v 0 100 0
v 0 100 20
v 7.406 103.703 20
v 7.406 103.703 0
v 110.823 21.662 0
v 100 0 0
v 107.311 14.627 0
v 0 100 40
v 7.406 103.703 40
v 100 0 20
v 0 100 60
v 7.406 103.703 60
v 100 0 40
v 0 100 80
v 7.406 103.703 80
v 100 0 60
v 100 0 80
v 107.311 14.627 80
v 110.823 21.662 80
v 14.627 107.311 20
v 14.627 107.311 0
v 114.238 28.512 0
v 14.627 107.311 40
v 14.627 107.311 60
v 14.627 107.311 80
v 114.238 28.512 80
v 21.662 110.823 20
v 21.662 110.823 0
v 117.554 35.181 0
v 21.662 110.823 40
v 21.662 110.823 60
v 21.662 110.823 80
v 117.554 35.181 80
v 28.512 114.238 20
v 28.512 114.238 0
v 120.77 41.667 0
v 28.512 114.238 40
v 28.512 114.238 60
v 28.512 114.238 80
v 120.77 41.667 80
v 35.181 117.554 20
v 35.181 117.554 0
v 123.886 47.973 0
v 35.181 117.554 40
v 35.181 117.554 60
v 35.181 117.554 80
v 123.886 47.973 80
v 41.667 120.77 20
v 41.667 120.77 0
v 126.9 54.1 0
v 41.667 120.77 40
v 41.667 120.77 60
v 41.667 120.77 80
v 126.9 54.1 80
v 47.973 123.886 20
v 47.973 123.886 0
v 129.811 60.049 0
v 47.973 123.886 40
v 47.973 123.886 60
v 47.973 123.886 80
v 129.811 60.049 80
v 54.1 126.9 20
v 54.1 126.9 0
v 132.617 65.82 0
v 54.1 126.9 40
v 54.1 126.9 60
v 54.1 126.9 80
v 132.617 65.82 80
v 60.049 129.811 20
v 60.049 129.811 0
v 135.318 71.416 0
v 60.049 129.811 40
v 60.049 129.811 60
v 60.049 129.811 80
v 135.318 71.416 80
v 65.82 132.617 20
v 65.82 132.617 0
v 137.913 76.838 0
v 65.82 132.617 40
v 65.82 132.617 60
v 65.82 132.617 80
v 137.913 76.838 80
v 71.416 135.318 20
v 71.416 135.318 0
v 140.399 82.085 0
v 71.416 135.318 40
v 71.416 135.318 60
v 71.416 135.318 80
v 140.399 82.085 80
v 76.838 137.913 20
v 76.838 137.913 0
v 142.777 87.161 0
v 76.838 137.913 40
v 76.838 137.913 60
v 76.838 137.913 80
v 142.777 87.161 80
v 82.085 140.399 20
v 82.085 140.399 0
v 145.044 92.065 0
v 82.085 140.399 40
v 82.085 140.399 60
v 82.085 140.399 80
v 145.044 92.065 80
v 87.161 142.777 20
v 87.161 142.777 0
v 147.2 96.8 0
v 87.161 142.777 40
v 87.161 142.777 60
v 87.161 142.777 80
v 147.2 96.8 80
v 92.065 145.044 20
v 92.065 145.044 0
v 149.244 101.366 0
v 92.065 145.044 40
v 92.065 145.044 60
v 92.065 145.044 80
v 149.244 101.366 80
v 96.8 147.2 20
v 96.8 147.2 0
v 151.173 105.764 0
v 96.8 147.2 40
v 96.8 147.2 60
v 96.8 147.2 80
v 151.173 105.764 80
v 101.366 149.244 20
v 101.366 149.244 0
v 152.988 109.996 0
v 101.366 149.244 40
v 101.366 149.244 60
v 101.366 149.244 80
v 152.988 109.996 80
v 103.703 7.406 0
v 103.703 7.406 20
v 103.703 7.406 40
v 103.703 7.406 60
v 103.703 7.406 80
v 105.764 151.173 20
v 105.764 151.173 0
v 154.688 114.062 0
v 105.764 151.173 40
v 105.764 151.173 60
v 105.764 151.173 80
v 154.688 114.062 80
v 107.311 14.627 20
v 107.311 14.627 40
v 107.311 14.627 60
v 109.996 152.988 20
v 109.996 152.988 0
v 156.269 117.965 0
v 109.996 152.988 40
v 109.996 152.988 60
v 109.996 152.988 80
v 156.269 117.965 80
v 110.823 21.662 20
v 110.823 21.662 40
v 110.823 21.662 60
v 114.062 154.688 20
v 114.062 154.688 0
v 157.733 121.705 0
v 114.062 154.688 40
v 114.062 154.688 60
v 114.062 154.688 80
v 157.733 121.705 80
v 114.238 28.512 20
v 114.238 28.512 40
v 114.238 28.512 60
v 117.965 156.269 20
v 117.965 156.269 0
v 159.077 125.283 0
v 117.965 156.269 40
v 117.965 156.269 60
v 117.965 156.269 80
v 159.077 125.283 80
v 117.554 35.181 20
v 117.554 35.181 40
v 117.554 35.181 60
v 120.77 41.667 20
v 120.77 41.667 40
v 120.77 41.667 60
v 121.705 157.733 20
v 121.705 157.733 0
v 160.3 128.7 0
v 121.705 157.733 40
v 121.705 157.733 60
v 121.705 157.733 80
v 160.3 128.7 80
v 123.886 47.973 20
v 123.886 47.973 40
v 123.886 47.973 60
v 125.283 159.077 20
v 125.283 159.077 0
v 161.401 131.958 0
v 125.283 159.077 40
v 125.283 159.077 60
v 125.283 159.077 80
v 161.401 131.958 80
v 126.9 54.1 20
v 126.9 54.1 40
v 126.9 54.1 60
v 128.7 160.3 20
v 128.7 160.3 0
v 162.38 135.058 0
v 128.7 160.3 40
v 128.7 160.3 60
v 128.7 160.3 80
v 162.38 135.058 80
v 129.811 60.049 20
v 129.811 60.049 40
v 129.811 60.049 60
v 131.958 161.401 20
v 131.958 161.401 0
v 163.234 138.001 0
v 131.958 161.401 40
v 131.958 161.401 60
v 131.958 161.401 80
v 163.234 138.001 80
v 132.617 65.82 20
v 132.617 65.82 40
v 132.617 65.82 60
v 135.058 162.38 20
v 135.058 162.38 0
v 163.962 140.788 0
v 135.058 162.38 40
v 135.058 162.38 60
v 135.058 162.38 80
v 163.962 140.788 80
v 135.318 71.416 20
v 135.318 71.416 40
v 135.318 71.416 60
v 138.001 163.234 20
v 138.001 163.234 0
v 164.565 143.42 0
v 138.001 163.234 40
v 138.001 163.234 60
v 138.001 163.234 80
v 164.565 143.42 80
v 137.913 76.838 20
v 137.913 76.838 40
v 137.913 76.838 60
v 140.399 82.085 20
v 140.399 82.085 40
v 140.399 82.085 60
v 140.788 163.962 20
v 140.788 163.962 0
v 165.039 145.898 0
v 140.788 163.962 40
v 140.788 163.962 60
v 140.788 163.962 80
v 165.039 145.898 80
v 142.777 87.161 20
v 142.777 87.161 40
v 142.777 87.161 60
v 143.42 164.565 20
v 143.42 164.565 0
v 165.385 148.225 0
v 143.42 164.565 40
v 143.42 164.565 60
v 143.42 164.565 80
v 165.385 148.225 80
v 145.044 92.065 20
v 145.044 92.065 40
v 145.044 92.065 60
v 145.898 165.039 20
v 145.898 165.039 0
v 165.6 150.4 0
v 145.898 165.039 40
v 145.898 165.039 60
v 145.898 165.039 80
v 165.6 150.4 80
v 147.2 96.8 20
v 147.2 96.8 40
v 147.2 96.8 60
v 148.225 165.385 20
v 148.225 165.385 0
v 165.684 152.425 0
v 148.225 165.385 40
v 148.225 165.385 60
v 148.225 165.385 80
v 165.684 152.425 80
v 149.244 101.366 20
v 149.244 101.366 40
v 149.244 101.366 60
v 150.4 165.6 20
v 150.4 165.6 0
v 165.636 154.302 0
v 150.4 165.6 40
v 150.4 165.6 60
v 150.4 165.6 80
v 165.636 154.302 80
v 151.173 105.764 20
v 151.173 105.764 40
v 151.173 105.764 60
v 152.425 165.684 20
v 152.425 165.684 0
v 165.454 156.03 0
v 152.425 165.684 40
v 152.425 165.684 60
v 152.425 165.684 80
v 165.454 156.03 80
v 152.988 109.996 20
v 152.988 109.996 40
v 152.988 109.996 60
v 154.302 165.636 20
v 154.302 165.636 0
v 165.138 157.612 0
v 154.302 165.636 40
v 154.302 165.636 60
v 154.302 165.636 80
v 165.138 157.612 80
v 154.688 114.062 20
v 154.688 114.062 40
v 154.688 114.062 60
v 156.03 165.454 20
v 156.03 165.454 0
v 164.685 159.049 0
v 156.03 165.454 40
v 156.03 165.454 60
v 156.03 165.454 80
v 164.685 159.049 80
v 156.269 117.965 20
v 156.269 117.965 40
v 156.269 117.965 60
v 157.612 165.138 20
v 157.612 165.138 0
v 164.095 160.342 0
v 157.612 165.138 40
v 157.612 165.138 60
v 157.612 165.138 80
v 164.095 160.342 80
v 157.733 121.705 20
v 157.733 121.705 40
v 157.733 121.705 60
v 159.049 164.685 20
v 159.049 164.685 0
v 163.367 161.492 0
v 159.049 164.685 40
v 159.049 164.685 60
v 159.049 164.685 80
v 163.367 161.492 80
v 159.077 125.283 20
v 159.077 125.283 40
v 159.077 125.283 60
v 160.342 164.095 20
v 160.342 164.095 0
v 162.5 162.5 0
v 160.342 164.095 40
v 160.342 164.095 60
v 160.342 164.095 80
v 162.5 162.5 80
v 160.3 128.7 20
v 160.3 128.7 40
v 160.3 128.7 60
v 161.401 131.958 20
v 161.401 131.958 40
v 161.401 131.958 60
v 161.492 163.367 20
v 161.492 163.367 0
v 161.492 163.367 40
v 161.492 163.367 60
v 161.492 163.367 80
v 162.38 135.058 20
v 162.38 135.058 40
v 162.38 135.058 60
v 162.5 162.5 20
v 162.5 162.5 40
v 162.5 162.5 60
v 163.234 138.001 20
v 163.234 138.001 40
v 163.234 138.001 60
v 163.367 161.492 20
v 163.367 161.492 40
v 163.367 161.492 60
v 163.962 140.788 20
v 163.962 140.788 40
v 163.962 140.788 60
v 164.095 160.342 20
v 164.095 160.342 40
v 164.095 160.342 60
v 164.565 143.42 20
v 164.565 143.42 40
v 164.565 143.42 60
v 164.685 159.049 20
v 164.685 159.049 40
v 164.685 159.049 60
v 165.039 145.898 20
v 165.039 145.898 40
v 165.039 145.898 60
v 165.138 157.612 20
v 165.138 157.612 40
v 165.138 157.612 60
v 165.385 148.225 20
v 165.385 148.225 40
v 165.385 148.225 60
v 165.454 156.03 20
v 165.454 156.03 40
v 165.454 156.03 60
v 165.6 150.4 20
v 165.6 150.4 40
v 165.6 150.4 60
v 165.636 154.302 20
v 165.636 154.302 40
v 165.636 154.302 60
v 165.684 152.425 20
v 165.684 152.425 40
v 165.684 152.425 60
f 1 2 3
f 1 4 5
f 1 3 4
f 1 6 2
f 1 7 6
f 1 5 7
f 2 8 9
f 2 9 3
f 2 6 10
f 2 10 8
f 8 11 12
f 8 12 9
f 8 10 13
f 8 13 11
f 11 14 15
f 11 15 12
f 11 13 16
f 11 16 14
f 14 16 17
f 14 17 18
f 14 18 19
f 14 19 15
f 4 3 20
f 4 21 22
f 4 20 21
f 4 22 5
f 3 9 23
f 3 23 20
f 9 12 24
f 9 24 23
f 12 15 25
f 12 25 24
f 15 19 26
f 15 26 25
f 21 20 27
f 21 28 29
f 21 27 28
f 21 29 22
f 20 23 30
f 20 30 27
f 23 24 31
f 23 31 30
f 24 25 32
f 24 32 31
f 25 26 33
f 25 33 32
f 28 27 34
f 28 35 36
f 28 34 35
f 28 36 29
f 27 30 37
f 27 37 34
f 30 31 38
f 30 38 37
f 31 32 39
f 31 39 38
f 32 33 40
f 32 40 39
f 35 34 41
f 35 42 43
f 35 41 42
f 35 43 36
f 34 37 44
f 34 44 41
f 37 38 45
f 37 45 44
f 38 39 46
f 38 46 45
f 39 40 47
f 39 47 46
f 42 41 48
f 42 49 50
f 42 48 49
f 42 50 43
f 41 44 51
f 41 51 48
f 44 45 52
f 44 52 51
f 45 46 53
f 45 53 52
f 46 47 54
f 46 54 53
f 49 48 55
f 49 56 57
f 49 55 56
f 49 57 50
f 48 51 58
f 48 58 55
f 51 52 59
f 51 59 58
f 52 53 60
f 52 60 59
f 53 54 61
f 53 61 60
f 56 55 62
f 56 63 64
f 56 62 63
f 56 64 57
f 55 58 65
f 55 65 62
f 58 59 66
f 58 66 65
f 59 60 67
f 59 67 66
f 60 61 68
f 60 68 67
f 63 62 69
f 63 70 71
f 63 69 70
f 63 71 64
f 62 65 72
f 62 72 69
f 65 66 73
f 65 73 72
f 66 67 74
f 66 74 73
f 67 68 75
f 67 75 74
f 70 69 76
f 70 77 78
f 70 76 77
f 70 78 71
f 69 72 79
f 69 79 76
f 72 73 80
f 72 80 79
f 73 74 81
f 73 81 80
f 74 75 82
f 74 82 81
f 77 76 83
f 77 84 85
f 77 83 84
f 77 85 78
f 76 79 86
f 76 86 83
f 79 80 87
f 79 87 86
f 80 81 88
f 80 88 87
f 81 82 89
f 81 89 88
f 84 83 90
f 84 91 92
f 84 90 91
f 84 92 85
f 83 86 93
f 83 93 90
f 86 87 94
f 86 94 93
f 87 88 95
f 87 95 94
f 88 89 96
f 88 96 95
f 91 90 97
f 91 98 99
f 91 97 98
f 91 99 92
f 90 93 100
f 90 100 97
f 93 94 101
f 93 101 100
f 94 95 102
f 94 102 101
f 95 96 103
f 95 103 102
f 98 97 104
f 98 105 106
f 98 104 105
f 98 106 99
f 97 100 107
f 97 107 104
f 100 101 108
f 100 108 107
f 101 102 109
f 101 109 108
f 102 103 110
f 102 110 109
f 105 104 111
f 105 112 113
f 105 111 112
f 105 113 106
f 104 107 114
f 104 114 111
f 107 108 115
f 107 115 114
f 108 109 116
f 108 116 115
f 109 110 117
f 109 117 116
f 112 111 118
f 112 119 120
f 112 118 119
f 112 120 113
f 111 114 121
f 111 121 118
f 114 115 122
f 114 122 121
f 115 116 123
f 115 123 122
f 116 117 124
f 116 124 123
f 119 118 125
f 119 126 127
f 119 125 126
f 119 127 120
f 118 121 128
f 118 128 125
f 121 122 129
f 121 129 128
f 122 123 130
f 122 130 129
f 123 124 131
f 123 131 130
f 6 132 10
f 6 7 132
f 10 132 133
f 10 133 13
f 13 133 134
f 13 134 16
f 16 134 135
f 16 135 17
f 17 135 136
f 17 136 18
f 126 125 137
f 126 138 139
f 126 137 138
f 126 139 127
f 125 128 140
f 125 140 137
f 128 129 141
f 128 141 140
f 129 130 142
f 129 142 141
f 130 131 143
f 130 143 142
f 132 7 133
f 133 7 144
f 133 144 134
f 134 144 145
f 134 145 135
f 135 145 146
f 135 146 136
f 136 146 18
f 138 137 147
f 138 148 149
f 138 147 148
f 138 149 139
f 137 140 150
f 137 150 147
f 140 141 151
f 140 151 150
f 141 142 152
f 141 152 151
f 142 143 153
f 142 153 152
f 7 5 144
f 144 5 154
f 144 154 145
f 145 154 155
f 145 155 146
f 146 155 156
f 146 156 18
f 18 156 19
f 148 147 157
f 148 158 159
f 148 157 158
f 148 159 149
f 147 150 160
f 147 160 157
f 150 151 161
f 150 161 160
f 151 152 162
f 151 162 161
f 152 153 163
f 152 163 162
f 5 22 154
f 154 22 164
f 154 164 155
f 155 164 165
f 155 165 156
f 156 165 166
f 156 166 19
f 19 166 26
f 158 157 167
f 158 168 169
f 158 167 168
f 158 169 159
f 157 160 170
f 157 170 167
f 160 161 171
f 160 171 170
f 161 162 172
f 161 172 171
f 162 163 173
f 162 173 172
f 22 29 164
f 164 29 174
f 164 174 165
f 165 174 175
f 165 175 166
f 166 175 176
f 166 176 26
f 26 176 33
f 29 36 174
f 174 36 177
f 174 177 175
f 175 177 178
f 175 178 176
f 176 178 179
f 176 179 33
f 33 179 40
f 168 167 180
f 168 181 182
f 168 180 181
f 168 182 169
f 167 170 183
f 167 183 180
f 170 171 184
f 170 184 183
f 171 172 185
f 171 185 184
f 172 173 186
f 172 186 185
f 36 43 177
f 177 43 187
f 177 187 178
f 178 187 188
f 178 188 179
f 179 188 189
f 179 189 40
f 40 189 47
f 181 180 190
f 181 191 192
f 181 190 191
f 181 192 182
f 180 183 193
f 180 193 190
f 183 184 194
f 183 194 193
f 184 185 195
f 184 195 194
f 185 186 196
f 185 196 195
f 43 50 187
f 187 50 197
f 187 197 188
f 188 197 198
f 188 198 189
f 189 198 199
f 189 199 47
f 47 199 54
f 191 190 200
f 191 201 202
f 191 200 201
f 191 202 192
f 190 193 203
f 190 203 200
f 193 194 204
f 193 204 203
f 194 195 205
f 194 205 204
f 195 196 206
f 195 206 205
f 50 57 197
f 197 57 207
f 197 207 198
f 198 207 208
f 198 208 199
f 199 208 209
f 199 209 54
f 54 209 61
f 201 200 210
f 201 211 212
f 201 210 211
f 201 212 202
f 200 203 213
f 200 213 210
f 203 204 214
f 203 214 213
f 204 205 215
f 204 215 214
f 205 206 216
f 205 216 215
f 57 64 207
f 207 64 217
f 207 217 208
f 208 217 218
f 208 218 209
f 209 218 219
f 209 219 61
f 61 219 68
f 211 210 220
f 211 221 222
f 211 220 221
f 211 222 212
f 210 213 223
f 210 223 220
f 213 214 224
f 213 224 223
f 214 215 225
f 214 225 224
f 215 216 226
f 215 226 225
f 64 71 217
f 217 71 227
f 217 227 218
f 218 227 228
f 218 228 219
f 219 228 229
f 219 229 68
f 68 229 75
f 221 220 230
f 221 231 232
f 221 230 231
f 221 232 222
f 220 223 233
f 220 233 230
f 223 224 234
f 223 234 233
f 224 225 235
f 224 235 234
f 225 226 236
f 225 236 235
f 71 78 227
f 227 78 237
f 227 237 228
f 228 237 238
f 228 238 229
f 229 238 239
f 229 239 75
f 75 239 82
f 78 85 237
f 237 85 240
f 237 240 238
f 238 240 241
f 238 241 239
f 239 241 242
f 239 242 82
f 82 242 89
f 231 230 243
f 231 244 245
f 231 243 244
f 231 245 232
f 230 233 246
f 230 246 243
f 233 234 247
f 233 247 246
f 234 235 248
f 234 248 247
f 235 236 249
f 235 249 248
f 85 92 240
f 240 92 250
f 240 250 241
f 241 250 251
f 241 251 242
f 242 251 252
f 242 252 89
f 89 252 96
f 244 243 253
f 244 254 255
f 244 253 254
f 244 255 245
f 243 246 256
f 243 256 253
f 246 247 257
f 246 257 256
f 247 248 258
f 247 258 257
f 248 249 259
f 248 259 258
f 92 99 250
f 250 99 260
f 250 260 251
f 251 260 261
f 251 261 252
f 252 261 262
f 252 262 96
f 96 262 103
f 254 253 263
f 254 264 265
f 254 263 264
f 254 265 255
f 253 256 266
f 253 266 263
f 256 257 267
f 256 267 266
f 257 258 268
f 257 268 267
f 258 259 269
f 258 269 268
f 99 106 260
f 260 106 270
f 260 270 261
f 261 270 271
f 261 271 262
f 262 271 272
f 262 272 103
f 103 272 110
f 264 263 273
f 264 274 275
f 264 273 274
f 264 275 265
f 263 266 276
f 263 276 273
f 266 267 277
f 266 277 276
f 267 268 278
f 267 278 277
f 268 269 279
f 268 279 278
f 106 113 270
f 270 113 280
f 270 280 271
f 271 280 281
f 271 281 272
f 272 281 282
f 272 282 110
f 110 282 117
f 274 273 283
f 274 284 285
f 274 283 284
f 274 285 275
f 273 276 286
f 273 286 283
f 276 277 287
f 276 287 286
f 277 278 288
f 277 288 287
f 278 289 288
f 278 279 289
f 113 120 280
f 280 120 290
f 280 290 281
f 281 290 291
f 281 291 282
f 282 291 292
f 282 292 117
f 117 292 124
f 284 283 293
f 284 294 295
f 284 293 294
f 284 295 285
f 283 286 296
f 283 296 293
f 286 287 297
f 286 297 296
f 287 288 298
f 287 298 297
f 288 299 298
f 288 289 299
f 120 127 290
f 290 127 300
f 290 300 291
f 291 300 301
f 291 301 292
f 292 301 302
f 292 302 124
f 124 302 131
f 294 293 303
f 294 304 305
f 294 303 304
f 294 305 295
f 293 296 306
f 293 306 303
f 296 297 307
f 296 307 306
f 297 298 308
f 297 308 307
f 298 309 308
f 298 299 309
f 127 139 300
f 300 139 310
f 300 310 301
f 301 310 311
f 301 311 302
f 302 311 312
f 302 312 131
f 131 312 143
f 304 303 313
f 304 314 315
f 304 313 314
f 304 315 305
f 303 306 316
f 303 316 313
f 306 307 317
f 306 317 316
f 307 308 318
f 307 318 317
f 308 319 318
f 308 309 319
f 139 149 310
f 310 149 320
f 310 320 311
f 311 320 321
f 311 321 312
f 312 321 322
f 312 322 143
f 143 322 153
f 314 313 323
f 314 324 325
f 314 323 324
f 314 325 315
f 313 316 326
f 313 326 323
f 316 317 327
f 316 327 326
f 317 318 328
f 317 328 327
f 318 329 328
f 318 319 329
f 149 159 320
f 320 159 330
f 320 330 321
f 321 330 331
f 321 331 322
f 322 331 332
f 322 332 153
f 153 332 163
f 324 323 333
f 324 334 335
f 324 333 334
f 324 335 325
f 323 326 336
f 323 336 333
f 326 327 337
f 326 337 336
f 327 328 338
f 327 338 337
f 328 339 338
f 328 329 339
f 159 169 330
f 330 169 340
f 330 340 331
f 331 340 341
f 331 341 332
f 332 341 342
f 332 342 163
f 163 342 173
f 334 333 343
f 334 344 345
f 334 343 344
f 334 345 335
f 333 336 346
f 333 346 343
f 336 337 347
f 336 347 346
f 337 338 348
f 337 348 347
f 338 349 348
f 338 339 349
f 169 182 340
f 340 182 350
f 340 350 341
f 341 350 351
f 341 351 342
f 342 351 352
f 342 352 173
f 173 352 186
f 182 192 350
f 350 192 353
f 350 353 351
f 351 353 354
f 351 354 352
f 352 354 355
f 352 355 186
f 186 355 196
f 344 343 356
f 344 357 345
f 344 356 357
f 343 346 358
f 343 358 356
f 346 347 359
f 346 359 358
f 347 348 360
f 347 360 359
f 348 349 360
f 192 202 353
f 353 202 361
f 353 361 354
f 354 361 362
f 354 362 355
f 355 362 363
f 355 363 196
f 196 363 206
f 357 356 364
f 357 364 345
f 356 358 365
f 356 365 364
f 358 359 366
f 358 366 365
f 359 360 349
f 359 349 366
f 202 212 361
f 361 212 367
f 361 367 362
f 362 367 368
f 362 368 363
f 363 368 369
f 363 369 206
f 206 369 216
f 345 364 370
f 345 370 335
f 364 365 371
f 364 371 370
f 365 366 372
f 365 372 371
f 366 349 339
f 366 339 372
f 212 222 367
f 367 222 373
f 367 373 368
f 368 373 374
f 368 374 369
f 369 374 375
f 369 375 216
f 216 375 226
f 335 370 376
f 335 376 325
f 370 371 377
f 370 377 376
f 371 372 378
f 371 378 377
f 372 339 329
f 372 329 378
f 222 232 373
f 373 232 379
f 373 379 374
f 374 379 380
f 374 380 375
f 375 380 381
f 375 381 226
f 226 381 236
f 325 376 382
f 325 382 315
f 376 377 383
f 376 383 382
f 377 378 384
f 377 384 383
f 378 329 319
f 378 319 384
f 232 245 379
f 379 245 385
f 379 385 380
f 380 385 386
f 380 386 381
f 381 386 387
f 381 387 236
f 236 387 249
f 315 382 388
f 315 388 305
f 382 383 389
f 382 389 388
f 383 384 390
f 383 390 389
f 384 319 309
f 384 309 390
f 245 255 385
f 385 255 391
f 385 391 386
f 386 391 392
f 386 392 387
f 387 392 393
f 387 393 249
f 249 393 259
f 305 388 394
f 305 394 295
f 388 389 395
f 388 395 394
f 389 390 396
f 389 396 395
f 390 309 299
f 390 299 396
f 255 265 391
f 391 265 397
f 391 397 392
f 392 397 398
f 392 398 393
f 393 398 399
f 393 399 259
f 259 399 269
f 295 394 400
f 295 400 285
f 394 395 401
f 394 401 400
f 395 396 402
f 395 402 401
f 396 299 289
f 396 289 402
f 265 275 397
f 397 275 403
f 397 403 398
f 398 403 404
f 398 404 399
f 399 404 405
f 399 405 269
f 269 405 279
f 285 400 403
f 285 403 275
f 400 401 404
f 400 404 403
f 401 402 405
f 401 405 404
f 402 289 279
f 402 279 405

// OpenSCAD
// Start: lazy_union
default_5_default_5();
// End: lazy_union

// Modules.

// 'PartMaterial undef-default - default 5.0'
module default_5_default_5() {
  // 'None : _combine_solids_and_holes'
  union() {
    // 'example7 : _combine_solids_and_holes'
    union() {
      // 'example7'
      linear_extrude(height=80.0, twist=0.0, slices=4, scale=[1.0, 1.0], $fn=80) {
        polygon(points=[[100.0, 0.0], [103.7029296875, 7.4064453125], [107.3109375, 14.6265625], [110.8228515625, 21.6615234375], [114.2375, 28.5125], [117.5537109375, 35.1806640625], [120.7703125, 41.6671875], [123.8861328125, 47.9732421875], [126.9, 54.1], [129.8107421875, 60.0486328125], [132.6171875, 65.8203125], [135.3181640625, 71.4162109375], [137.9125, 76.8375], [140.3990234375, 82.0853515625], [142.7765625, 87.1609375], [145.0439453125, 92.0654296875], [147.2, 96.8], [149.2435546875, 101.3658203125], [151.1734375, 105.7640625], [152.9884765625, 109.9958984375], [154.6875, 114.0625], [156.2693359375, 117.9650390625], [157.7328125, 121.70468749999999], [159.0767578125, 125.28261718750001], [160.3, 128.7], [161.4013671875, 131.9580078125], [162.3796875, 135.0578125], [163.2337890625, 138.00058593749998], [163.9625, 140.78750000000002], [164.5646484375, 143.4197265625], [165.0390625, 145.8984375], [165.3845703125, 148.22480468749998], [165.6, 150.39999999999998], [165.6841796875, 152.42519531250002], [165.6359375, 154.30156250000002], [165.4541015625, 156.0302734375], [165.1375, 157.61249999999998], [164.6849609375, 159.0494140625], [164.0953125, 160.3421875], [163.3673828125, 161.4919921875], [162.5, 162.5], [161.4919921875, 163.3673828125], [160.3421875, 164.0953125], [159.04941406250003, 164.68496093750002], [157.61249999999998, 165.1375], [156.0302734375, 165.4541015625], [154.30156250000002, 165.6359375], [152.42519531249997, 165.68417968749998], [150.4, 165.6], [148.22480468749995, 165.38457031249996], [145.8984375, 165.0390625], [143.41972656250002, 164.5646484375], [140.78749999999997, 163.96249999999998], [138.0005859375, 163.2337890625], [135.05781249999995, 162.37968749999996], [131.9580078125, 161.4013671875], [128.70000000000005, 160.30000000000007], [125.2826171875, 159.07675781249998], [121.7046875, 157.73281250000002], [117.96503906250001, 156.2693359375], [114.0625, 154.6875], [109.99589843750005, 152.98847656250007], [105.76406249999997, 151.17343749999998], [101.3658203125, 149.24355468750002], [96.79999999999995, 147.19999999999993], [92.0654296875, 145.0439453125], [87.16093750000005, 142.77656250000007], [82.08535156250002, 140.39902343749998], [76.83750000000003, 137.91250000000002], [71.41621093749995, 135.31816406249993], [65.8203125, 132.6171875], [60.048632812500045, 129.81074218750007], [54.099999999999966, 126.89999999999998], [47.97324218749998, 123.88613281250002], [41.66718750000001, 120.77031249999999], [35.1806640625, 117.5537109375], [28.512500000000045, 114.23749999999995], [21.66152343749991, 110.82285156249992], [14.626562499999977, 107.31093750000002], [7.406445312500011, 103.70292968749999], [0.0, 100.0]]);
      }
    }
  }
} // end module default_5_default_5
